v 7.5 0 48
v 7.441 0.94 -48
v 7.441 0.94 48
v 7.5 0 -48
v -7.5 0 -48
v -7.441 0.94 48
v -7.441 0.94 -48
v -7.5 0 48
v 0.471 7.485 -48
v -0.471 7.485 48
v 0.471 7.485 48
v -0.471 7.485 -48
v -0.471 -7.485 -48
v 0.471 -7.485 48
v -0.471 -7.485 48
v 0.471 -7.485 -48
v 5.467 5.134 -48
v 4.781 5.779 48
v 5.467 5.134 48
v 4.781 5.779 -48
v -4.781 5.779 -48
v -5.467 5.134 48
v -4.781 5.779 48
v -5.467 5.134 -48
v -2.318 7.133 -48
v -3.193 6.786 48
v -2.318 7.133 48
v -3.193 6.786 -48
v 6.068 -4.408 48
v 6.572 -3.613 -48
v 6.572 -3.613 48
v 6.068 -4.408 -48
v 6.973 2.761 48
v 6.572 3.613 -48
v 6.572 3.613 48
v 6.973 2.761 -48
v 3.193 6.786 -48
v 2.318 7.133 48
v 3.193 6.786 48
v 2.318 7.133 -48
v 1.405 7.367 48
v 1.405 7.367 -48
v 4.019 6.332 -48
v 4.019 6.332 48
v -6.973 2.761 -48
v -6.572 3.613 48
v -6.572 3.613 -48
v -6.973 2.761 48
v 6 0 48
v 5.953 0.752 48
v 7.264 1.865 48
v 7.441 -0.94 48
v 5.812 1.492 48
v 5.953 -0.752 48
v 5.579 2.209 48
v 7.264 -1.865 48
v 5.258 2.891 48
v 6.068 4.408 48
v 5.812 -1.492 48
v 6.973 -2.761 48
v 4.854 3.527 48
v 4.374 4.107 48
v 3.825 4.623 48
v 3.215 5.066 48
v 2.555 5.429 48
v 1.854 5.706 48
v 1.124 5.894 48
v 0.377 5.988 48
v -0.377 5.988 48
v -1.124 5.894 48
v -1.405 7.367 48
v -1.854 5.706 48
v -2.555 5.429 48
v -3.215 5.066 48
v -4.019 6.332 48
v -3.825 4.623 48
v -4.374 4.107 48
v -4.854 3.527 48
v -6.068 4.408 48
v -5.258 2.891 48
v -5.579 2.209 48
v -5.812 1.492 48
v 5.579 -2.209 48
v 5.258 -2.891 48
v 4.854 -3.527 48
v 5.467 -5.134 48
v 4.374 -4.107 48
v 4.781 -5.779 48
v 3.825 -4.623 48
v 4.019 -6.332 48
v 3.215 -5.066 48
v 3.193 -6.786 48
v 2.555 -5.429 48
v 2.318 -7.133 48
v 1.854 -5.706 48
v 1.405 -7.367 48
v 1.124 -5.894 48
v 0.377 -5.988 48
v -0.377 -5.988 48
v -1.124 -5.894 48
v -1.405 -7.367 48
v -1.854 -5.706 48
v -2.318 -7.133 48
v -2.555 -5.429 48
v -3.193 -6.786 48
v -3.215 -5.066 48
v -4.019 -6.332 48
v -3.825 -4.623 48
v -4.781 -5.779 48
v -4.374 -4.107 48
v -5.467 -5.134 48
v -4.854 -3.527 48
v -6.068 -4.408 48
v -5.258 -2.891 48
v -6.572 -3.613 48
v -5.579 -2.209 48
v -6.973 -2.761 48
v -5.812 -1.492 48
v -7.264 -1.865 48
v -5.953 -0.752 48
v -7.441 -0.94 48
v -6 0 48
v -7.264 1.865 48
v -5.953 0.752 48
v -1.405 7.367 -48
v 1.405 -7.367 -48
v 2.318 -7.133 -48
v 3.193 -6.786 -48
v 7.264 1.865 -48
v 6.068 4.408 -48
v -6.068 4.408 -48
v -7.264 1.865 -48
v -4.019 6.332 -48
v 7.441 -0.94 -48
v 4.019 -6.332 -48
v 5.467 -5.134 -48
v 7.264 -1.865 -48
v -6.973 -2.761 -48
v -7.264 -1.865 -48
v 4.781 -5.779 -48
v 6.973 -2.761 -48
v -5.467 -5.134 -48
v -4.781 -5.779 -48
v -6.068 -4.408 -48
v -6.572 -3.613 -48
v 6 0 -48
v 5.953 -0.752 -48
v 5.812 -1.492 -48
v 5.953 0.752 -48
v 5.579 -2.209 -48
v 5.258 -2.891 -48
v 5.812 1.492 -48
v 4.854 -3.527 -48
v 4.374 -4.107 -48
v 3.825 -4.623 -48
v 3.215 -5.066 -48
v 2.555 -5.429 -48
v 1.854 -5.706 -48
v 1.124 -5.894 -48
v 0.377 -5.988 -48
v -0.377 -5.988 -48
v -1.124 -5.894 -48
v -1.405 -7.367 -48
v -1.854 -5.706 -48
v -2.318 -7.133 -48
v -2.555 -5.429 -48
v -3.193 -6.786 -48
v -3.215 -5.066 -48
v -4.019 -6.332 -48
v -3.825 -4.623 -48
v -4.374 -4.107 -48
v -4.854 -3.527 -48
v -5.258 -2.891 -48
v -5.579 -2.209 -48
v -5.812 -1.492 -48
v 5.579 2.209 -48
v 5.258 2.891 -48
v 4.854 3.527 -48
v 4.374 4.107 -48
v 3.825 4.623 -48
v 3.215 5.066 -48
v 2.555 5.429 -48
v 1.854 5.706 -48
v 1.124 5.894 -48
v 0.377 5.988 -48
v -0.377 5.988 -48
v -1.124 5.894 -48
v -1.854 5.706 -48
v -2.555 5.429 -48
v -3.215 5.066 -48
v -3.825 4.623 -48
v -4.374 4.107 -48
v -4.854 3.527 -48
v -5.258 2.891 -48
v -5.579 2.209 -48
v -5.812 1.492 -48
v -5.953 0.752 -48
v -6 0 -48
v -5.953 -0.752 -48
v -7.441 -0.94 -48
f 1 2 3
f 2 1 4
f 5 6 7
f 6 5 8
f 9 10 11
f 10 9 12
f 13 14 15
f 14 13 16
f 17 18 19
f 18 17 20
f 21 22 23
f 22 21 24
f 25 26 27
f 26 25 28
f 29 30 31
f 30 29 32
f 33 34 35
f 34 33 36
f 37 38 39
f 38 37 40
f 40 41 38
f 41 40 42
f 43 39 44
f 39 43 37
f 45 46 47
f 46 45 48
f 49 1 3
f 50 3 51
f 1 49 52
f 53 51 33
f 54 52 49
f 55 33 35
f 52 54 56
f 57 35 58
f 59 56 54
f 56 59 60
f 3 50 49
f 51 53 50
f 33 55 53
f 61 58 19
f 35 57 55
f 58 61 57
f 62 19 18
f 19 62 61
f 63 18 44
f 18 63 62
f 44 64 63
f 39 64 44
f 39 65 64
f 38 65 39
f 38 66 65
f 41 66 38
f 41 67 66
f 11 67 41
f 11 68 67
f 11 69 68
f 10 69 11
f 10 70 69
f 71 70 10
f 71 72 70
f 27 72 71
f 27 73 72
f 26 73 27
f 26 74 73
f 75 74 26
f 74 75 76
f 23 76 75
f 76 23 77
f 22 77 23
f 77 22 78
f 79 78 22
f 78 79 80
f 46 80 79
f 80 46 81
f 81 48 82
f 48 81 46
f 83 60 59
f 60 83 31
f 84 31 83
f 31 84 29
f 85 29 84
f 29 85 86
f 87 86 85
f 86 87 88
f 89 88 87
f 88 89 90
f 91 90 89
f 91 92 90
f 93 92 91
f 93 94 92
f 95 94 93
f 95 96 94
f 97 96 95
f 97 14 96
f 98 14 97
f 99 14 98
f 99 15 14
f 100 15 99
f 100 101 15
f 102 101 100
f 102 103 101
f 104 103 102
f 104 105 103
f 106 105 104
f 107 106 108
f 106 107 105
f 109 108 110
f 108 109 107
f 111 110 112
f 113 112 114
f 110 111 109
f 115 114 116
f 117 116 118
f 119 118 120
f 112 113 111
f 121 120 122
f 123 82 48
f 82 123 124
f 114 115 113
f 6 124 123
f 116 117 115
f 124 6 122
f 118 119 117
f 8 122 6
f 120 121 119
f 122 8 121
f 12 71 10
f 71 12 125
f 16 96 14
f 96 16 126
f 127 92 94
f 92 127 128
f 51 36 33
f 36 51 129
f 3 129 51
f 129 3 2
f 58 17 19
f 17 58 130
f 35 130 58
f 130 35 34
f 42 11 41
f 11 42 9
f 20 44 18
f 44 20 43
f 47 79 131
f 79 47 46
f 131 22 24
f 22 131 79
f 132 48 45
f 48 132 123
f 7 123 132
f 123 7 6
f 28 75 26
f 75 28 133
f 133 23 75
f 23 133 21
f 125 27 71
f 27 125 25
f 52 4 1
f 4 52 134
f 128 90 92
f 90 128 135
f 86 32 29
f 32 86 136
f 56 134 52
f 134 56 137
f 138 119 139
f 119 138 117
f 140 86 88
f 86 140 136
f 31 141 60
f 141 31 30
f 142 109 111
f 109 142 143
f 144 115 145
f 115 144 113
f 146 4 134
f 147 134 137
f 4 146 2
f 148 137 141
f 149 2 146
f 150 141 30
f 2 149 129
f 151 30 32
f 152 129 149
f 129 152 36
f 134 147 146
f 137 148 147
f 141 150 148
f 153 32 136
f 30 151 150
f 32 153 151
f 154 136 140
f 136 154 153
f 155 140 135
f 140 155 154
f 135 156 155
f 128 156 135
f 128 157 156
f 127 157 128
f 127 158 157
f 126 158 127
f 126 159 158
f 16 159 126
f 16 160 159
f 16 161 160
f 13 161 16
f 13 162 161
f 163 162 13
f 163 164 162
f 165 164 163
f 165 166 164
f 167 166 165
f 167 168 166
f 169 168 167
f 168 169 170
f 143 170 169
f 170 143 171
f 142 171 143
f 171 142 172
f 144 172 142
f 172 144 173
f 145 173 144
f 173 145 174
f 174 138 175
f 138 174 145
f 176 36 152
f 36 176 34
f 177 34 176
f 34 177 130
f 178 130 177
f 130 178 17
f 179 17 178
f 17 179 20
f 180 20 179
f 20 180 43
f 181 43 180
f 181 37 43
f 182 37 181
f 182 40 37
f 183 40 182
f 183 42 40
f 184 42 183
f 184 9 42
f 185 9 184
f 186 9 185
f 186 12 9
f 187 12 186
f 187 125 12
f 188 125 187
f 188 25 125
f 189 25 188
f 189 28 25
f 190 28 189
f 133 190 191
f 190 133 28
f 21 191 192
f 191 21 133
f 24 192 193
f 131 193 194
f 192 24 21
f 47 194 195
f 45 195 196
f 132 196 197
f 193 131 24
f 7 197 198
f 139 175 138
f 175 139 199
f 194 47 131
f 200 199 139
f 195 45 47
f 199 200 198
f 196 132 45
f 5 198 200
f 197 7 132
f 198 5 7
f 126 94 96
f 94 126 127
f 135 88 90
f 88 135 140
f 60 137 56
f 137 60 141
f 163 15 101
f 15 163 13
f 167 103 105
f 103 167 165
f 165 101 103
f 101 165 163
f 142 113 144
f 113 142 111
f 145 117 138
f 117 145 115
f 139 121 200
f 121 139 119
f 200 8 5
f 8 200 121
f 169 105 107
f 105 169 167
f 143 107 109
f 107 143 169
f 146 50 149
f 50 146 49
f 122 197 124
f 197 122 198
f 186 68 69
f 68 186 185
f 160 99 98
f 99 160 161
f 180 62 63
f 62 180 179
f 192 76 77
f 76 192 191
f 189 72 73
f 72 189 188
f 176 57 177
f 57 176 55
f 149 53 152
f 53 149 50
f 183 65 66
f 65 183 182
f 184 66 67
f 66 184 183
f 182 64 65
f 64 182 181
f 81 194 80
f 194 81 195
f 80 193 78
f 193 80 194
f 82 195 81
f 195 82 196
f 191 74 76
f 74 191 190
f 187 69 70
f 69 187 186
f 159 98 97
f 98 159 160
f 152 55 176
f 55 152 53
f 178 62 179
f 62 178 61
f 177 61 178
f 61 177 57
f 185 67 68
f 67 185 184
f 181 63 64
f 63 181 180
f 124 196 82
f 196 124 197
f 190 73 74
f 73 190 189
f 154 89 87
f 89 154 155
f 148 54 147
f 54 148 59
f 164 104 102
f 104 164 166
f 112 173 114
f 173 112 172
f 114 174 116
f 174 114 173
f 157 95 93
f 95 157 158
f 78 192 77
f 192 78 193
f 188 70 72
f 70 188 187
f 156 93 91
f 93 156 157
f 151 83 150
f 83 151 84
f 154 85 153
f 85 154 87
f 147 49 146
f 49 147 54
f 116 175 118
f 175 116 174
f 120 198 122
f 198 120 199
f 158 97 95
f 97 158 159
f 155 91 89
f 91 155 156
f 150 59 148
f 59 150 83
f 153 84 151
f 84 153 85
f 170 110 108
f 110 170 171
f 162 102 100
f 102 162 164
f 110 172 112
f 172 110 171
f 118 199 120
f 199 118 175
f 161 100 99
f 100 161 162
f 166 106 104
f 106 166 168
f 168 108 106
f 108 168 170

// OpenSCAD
$fn = 50;


difference() {
	union() {
		translate(v = [0, 0, -48.0000000000]) {
			cylinder(h = 96, r = 7.5000000000);
		}
	}
	union() {
		translate(v = [0, 0, -100.0000000000]) {
			cylinder(h = 200, r = 6);
		}
	}
}
